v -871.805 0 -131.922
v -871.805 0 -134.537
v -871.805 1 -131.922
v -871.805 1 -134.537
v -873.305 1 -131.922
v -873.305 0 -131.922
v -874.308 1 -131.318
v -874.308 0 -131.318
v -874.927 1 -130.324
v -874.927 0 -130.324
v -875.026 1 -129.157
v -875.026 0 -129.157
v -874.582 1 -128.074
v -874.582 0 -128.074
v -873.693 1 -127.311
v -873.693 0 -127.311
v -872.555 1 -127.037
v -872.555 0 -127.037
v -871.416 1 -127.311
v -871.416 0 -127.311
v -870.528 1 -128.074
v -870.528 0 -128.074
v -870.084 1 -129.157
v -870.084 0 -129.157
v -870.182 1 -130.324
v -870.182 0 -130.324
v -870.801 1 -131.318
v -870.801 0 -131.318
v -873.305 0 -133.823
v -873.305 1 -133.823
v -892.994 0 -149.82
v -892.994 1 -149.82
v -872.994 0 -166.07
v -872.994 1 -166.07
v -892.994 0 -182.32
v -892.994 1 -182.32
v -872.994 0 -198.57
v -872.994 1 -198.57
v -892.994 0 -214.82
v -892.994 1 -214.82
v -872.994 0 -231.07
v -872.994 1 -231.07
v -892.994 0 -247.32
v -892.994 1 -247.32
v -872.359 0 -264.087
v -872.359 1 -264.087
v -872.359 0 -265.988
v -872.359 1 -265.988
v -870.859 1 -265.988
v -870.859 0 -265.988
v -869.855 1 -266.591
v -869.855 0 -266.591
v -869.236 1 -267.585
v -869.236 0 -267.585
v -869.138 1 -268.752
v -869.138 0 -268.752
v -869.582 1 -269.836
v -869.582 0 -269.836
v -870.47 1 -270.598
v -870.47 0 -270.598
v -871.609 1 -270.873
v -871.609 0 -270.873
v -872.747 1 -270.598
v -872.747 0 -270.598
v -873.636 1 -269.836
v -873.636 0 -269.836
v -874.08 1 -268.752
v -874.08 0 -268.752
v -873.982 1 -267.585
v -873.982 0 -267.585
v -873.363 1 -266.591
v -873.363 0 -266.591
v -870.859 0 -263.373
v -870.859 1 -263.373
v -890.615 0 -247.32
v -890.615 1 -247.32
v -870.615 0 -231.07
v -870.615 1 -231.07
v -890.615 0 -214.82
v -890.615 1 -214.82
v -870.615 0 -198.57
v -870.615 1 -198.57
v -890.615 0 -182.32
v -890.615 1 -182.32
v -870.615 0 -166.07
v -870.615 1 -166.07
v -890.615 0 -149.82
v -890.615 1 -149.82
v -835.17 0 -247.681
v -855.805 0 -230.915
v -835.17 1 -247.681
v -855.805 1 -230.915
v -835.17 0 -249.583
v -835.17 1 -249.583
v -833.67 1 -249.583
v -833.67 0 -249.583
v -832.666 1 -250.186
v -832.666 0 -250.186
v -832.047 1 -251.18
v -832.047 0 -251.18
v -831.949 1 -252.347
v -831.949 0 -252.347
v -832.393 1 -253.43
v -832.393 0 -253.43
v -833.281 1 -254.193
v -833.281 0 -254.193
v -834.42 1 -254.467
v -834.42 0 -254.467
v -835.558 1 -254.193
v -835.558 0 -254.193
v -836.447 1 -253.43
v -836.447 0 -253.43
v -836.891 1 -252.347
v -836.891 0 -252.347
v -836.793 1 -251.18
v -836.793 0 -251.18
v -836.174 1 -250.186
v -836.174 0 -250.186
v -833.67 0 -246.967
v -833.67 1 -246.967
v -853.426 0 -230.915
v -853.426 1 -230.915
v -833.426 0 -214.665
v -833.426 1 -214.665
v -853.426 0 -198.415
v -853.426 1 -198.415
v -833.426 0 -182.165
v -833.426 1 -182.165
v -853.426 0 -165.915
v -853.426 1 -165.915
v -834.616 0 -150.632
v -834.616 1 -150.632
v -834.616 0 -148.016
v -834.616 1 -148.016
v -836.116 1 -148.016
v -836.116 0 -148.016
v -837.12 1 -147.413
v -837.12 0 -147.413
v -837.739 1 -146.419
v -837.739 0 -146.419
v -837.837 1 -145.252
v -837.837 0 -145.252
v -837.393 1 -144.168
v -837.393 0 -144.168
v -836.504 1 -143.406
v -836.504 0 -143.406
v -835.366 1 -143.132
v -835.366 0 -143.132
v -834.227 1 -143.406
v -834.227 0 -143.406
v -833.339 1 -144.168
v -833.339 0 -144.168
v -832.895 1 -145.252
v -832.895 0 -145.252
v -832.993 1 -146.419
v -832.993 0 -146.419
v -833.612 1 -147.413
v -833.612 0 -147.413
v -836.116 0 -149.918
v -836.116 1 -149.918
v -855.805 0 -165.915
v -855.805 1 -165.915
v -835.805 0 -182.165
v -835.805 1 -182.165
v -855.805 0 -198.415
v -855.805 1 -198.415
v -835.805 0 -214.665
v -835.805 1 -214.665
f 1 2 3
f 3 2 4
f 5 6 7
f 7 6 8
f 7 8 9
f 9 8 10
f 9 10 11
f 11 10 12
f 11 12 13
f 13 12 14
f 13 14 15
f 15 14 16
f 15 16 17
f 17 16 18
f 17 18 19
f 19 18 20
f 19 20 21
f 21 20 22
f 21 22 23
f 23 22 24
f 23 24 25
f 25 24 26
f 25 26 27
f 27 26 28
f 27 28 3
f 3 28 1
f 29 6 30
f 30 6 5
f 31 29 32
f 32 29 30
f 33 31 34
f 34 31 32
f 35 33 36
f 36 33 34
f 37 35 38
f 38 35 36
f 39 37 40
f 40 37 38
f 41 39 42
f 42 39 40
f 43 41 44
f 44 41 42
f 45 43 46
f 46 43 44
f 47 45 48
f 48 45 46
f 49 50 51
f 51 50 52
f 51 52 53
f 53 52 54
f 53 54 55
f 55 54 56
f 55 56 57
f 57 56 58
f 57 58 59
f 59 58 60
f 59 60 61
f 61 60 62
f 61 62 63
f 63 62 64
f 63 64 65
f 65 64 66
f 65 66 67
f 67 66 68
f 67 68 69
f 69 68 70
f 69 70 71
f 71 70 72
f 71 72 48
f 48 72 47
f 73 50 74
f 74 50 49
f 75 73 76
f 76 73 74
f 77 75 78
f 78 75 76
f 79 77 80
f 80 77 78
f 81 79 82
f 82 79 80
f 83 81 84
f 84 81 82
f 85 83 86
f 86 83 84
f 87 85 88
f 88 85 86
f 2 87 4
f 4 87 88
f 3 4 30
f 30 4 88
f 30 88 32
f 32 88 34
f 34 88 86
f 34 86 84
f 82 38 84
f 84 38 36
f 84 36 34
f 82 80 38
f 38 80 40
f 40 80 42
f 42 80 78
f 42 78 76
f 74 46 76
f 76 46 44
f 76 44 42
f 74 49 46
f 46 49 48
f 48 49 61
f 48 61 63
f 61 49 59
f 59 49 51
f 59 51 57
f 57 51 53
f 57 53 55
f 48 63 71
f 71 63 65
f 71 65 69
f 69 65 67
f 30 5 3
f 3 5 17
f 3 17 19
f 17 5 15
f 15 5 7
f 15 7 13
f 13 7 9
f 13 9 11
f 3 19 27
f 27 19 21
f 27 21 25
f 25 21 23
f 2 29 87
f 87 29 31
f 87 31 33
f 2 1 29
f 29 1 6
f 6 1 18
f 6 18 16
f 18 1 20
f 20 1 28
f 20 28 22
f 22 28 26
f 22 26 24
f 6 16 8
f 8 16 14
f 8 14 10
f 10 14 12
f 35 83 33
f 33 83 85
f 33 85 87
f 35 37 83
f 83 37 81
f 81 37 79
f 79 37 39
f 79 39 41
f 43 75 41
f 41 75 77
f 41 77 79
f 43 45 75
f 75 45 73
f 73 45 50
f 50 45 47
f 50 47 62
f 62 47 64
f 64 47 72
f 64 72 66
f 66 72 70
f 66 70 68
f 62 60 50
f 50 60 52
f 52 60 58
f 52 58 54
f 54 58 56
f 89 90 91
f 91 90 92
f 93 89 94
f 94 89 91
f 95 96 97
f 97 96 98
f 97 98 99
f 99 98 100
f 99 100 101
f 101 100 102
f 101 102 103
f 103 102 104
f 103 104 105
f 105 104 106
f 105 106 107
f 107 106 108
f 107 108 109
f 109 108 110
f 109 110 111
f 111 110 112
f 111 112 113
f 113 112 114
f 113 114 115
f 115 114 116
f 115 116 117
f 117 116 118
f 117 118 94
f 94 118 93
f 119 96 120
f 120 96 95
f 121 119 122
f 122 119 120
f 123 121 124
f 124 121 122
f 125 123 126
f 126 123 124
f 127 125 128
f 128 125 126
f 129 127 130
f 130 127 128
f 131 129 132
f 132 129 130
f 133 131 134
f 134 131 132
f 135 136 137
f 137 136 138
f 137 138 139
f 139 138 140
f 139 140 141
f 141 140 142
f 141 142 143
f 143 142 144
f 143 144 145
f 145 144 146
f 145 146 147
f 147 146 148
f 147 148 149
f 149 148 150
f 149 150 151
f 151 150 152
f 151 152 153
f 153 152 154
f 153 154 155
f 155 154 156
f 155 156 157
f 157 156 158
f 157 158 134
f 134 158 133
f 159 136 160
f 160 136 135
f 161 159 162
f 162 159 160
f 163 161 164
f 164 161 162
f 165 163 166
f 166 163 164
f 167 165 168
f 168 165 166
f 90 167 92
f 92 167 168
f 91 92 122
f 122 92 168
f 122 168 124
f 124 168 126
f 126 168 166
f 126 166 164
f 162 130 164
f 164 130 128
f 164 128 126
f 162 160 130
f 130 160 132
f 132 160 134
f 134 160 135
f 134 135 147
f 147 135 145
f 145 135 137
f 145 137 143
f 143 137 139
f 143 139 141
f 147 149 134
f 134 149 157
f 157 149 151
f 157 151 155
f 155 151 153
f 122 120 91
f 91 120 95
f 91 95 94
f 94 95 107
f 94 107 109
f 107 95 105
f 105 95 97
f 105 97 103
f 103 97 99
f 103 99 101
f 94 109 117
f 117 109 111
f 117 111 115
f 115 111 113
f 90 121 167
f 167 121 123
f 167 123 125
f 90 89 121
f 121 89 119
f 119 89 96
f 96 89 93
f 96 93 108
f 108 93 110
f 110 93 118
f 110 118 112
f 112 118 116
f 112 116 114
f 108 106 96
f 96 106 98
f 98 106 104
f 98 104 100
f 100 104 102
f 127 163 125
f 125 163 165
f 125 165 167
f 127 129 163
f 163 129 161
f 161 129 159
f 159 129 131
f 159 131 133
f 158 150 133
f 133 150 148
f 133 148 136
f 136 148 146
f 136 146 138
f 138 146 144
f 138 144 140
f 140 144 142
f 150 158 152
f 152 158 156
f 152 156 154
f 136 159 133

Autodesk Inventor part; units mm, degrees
ref_plane "YZ Plane" through (0, 0, 0) normal (1, 0, 0) x (0, 1, 0)
ref_plane "XZ Plane" through (0, 0, 0) normal (0, 1, 0) x (-1, 0, 0)
ref_plane "XY Plane" through (0, 0, 0) normal (0, 0, 1) x (1, 0, 0)
sketch "Sketch1" plane through (0, 0, 0) normal (0, 1, 0) x (-1, 0, 0)
  line L0 (872.3588, -264.5367) -> (891.8047, -264.5367)
  line L1 (891.8047, -199.5367) -> (874.1834, -199.5367)
  line L2 (874.1834, -232.0367) -> (891.8047, -232.0367)
  line L3 (889.426, -248.2867) -> (871.8047, -248.2867)
  line L4 (889.426, -215.7867) -> (871.8047, -215.7867)
  line L5 (874.1834, -134.5367) -> (891.8047, -134.5367)
  line L6 (874.1834, -167.0367) -> (891.8047, -167.0367)
  line L7 (889.426, -150.7867) -> (871.8047, -150.7867)
  line L8 (889.426, -183.2867) -> (871.8047, -183.2867)
  line L9 (872.3588, -264.0865) -> (891.8047, -248.2867)
  line L10 (890.6154, -247.3204) -> (870.8588, -263.3726)
  line L11 (890.6154, -247.3204) -> (871.8047, -232.0367)
  line L12 (872.9941, -231.0704) -> (892.7506, -247.1226)
  line L13 (891.8047, -215.7867) -> (872.9941, -231.0704)
  line L14 (870.8588, -230.8726) -> (890.6154, -214.8204)
  line L15 (890.6154, -214.8204) -> (871.8047, -199.5367)
  line L16 (872.9941, -198.5704) -> (892.7506, -214.6226)
  line L17 (872.9941, -198.5704) -> (891.8047, -183.2867)
  line L18 (890.6154, -182.3204) -> (870.8588, -198.3726)
  line L19 (890.6154, -182.3204) -> (871.8047, -167.0367)
  line L20 (872.7506, -165.8726) -> (892.7506, -182.1226)
  line L21 (872.9941, -166.0704) -> (891.8047, -150.7867)
  line L22 (890.6154, -149.8204) -> (870.8588, -165.8726)
  line L23 (890.6154, -149.8204) -> (871.8047, -134.5367)
  line L24 (872.3588, -133.8548) -> (872.7506, -133.3726)
  line L25 (873.3047, -133.8228) -> (892.7506, -149.6226)
  line L26 (871.8047, -134.5367) -> (871.8047, -129.5367)
  line L27 (871.8047, -129.5367) -> (872.3588, -129.5367)
  line L28 (873.3047, -129.5367) -> (873.3047, -133.8228)
  line L29 (872.3588, -134.5367) -> (871.8047, -134.5367)
  line L30 (870.8588, -263.3726) -> (870.8588, -265.9877)
  line L31 (870.8588, -268.3726) -> (872.3588, -268.3726)
  line L32 (872.3588, -265.9877) -> (872.3588, -264.0865)
  line L33 (871.8047, -263.3726) -> (870.8588, -263.3726)
  arc A0 (870.8588, -265.9877) -> (872.3588, -265.9877) centre (871.6088, -268.3726) ccw
  arc A1 (873.3047, -131.9216) -> (871.8047, -131.9216) centre (872.5547, -129.5367) ccw
  line L34 (891.8047, -248.2867) -> (892.9941, -247.3204)
  line L35 (891.8047, -246.354) -> (892.9941, -247.3204)
  line L36 (871.8047, -232.0367) -> (870.6154, -231.0704)
  line L37 (870.6154, -231.0704) -> (870.8588, -230.8726)
  line L38 (891.2024, -216.2761) -> (892.9941, -214.8204)
  line L39 (892.6168, -214.5138) -> (892.9941, -214.8204)
  line L40 (872.3588, -199.987) -> (870.3719, -198.3726)
  line L41 (871.8047, -197.604) -> (870.6154, -198.5704)
  line L42 (891.2024, -183.7761) -> (893.3444, -182.0358)
  line L43 (891.711, -181.2778) -> (892.9941, -182.3204)
  line L44 (872.8965, -167.9238) -> (870.6154, -166.0704)
  line L45 (870.6154, -166.0704) -> (871.8047, -165.104)
  line L46 (890.6154, -151.7531) -> (892.9941, -149.8204)
  line L47 (892.9941, -149.8204) -> (891.8047, -148.854)
  line L48 (891.8047, -148.854) -> (891.8047, -134.5367)
  line L49 (891.8047, -181.354) -> (891.8047, -150.7867)
  line L50 (871.8047, -134.5367) -> (871.8047, -165.104)
  line L51 (871.8047, -167.0367) -> (871.8047, -197.604)
  line L52 (891.8047, -213.854) -> (891.8047, -183.2867)
  line L53 (871.8047, -199.5367) -> (871.8047, -230.104)
  line L54 (871.8047, -232.0367) -> (871.8047, -262.604)
  line L55 (891.8047, -264.5367) -> (891.8047, -248.2867)
  line L56 (891.8047, -246.354) -> (891.8047, -215.7867)
  line L57 (891.8047, -134.5367) -> (874.1834, -134.5367)
  line L58 (872.3588, -134.5367) -> (871.8047, -134.5367)
  line L59 (835.1699, -248.1316) -> (854.6158, -248.1316)
  line L60 (854.6158, -183.1316) -> (836.9945, -183.1316)
  line L61 (836.9945, -215.6316) -> (854.6158, -215.6316)
  line L62 (852.2371, -231.8816) -> (834.6158, -231.8816)
  line L63 (852.2371, -199.3816) -> (834.6158, -199.3816)
  line L64 (852.2371, -166.8816) -> (834.6158, -166.8816)
  line L65 (835.1699, -247.6814) -> (854.6158, -231.8816)
  line L66 (853.4264, -230.9152) -> (833.6699, -246.9674)
  line L67 (853.4264, -230.9152) -> (834.6158, -215.6316)
  line L68 (835.8052, -214.6652) -> (855.5617, -230.7174)
  line L69 (854.6158, -199.3816) -> (835.8052, -214.6652)
  line L70 (833.6699, -214.4674) -> (853.4264, -198.4152)
  line L71 (853.4264, -198.4152) -> (834.6158, -183.1316)
  line L72 (835.8052, -182.1652) -> (855.5617, -198.2174)
  line L73 (835.8052, -182.1652) -> (854.6158, -166.8816)
  line L74 (853.4264, -165.9152) -> (833.6699, -181.9674)
  line L75 (853.4264, -165.9152) -> (834.6158, -150.6316)
  line L76 (835.5617, -149.4674) -> (855.5617, -165.7174)
  line L77 (833.6699, -246.9674) -> (833.6699, -249.5826)
  line L78 (833.6699, -251.9674) -> (835.1699, -251.9674)
  line L79 (835.1699, -249.5826) -> (835.1699, -247.6814)
  line L80 (834.6158, -246.9674) -> (833.6699, -246.9674)
  arc A2 (833.6699, -249.5826) -> (835.1699, -249.5826) centre (834.4199, -251.9674) ccw
  line L81 (854.6158, -231.8816) -> (855.8052, -230.9152)
  line L82 (854.6158, -229.9489) -> (855.8052, -230.9152)
  line L83 (834.6158, -215.6316) -> (833.4264, -214.6652)
  line L84 (833.4264, -214.6652) -> (833.6699, -214.4674)
  line L85 (854.0135, -199.8709) -> (855.8052, -198.4152)
  line L86 (855.4278, -198.1086) -> (855.8052, -198.4152)
  line L87 (835.1699, -183.5818) -> (833.183, -181.9674)
  line L88 (834.6158, -181.1989) -> (833.4264, -182.1652)
  line L89 (854.0135, -167.3709) -> (856.1555, -165.6306)
  line L90 (854.522, -164.8727) -> (855.8052, -165.9152)
  line L91 (854.6158, -164.9489) -> (854.6158, -134.3816)
  line L92 (834.6158, -150.6316) -> (834.6158, -181.1989)
  line L93 (854.6158, -197.4489) -> (854.6158, -166.8816)
  line L94 (834.6158, -183.1316) -> (834.6158, -213.6989)
  line L95 (834.6158, -215.6316) -> (834.6158, -246.1989)
  line L96 (854.6158, -248.1316) -> (854.6158, -231.8816)
  line L97 (854.6158, -229.9489) -> (854.6158, -199.3816)
  line L98 (835.1699, -150.6316) -> (836.1158, -150.6316)
  line L99 (836.1158, -149.9176) -> (836.1158, -148.0164)
  line L100 (836.1158, -145.6316) -> (834.6158, -145.6316)
  line L101 (834.6158, -148.0164) -> (834.6158, -150.6316)
  arc A3 (836.1158, -148.0164) -> (834.6158, -148.0164) centre (835.3658, -145.6316) ccw
  point P0 (891.7246, -181.2889)
  point P1 (816.0772, -65.3291)
  dimension "d38" = 20
  dimension "d42" = 1.5
  dimension "d45" = 1.5
  dimension "d47" = 1.5
  dimension "d48" = 5
  dimension "d49" = 1.5
  dimension "d50" = 5
  dimension "d51" = 1.5
  dimension "d52" = 5
  dimension "d53" = 5
  dimension "d55" = 1.5
  dimension "d56" = 1.5
  dimension "d60" = 5
  dimension "d61" = 1.5
  dimension "d62" = 5
  dimension "d64" = 1.5
  dimension "d65" = 5
  dimension "d66" = 5
extrude "Extrusion1" add sketch "Sketch1" along normal blind 1 contours L32 A0 L30 L10 L11 L36 L37 L14 L15 L40 L41 L18 L19 L44 L45 L22 L23 L26 A1 L28 L25 L47 L46 L21 L20 L43 L42 L17 L16 L39 L38 L13 L12 L35 L34 L9 | L79 A2 L77 L66 L67 L83 L84 L70 L71 L87 L88 L74 L75 L101 A3 L99 L76 L90 L89 L73 L72 L86 L85 L69 L68 L82 L81 L65
properties part number "Serpentine"
